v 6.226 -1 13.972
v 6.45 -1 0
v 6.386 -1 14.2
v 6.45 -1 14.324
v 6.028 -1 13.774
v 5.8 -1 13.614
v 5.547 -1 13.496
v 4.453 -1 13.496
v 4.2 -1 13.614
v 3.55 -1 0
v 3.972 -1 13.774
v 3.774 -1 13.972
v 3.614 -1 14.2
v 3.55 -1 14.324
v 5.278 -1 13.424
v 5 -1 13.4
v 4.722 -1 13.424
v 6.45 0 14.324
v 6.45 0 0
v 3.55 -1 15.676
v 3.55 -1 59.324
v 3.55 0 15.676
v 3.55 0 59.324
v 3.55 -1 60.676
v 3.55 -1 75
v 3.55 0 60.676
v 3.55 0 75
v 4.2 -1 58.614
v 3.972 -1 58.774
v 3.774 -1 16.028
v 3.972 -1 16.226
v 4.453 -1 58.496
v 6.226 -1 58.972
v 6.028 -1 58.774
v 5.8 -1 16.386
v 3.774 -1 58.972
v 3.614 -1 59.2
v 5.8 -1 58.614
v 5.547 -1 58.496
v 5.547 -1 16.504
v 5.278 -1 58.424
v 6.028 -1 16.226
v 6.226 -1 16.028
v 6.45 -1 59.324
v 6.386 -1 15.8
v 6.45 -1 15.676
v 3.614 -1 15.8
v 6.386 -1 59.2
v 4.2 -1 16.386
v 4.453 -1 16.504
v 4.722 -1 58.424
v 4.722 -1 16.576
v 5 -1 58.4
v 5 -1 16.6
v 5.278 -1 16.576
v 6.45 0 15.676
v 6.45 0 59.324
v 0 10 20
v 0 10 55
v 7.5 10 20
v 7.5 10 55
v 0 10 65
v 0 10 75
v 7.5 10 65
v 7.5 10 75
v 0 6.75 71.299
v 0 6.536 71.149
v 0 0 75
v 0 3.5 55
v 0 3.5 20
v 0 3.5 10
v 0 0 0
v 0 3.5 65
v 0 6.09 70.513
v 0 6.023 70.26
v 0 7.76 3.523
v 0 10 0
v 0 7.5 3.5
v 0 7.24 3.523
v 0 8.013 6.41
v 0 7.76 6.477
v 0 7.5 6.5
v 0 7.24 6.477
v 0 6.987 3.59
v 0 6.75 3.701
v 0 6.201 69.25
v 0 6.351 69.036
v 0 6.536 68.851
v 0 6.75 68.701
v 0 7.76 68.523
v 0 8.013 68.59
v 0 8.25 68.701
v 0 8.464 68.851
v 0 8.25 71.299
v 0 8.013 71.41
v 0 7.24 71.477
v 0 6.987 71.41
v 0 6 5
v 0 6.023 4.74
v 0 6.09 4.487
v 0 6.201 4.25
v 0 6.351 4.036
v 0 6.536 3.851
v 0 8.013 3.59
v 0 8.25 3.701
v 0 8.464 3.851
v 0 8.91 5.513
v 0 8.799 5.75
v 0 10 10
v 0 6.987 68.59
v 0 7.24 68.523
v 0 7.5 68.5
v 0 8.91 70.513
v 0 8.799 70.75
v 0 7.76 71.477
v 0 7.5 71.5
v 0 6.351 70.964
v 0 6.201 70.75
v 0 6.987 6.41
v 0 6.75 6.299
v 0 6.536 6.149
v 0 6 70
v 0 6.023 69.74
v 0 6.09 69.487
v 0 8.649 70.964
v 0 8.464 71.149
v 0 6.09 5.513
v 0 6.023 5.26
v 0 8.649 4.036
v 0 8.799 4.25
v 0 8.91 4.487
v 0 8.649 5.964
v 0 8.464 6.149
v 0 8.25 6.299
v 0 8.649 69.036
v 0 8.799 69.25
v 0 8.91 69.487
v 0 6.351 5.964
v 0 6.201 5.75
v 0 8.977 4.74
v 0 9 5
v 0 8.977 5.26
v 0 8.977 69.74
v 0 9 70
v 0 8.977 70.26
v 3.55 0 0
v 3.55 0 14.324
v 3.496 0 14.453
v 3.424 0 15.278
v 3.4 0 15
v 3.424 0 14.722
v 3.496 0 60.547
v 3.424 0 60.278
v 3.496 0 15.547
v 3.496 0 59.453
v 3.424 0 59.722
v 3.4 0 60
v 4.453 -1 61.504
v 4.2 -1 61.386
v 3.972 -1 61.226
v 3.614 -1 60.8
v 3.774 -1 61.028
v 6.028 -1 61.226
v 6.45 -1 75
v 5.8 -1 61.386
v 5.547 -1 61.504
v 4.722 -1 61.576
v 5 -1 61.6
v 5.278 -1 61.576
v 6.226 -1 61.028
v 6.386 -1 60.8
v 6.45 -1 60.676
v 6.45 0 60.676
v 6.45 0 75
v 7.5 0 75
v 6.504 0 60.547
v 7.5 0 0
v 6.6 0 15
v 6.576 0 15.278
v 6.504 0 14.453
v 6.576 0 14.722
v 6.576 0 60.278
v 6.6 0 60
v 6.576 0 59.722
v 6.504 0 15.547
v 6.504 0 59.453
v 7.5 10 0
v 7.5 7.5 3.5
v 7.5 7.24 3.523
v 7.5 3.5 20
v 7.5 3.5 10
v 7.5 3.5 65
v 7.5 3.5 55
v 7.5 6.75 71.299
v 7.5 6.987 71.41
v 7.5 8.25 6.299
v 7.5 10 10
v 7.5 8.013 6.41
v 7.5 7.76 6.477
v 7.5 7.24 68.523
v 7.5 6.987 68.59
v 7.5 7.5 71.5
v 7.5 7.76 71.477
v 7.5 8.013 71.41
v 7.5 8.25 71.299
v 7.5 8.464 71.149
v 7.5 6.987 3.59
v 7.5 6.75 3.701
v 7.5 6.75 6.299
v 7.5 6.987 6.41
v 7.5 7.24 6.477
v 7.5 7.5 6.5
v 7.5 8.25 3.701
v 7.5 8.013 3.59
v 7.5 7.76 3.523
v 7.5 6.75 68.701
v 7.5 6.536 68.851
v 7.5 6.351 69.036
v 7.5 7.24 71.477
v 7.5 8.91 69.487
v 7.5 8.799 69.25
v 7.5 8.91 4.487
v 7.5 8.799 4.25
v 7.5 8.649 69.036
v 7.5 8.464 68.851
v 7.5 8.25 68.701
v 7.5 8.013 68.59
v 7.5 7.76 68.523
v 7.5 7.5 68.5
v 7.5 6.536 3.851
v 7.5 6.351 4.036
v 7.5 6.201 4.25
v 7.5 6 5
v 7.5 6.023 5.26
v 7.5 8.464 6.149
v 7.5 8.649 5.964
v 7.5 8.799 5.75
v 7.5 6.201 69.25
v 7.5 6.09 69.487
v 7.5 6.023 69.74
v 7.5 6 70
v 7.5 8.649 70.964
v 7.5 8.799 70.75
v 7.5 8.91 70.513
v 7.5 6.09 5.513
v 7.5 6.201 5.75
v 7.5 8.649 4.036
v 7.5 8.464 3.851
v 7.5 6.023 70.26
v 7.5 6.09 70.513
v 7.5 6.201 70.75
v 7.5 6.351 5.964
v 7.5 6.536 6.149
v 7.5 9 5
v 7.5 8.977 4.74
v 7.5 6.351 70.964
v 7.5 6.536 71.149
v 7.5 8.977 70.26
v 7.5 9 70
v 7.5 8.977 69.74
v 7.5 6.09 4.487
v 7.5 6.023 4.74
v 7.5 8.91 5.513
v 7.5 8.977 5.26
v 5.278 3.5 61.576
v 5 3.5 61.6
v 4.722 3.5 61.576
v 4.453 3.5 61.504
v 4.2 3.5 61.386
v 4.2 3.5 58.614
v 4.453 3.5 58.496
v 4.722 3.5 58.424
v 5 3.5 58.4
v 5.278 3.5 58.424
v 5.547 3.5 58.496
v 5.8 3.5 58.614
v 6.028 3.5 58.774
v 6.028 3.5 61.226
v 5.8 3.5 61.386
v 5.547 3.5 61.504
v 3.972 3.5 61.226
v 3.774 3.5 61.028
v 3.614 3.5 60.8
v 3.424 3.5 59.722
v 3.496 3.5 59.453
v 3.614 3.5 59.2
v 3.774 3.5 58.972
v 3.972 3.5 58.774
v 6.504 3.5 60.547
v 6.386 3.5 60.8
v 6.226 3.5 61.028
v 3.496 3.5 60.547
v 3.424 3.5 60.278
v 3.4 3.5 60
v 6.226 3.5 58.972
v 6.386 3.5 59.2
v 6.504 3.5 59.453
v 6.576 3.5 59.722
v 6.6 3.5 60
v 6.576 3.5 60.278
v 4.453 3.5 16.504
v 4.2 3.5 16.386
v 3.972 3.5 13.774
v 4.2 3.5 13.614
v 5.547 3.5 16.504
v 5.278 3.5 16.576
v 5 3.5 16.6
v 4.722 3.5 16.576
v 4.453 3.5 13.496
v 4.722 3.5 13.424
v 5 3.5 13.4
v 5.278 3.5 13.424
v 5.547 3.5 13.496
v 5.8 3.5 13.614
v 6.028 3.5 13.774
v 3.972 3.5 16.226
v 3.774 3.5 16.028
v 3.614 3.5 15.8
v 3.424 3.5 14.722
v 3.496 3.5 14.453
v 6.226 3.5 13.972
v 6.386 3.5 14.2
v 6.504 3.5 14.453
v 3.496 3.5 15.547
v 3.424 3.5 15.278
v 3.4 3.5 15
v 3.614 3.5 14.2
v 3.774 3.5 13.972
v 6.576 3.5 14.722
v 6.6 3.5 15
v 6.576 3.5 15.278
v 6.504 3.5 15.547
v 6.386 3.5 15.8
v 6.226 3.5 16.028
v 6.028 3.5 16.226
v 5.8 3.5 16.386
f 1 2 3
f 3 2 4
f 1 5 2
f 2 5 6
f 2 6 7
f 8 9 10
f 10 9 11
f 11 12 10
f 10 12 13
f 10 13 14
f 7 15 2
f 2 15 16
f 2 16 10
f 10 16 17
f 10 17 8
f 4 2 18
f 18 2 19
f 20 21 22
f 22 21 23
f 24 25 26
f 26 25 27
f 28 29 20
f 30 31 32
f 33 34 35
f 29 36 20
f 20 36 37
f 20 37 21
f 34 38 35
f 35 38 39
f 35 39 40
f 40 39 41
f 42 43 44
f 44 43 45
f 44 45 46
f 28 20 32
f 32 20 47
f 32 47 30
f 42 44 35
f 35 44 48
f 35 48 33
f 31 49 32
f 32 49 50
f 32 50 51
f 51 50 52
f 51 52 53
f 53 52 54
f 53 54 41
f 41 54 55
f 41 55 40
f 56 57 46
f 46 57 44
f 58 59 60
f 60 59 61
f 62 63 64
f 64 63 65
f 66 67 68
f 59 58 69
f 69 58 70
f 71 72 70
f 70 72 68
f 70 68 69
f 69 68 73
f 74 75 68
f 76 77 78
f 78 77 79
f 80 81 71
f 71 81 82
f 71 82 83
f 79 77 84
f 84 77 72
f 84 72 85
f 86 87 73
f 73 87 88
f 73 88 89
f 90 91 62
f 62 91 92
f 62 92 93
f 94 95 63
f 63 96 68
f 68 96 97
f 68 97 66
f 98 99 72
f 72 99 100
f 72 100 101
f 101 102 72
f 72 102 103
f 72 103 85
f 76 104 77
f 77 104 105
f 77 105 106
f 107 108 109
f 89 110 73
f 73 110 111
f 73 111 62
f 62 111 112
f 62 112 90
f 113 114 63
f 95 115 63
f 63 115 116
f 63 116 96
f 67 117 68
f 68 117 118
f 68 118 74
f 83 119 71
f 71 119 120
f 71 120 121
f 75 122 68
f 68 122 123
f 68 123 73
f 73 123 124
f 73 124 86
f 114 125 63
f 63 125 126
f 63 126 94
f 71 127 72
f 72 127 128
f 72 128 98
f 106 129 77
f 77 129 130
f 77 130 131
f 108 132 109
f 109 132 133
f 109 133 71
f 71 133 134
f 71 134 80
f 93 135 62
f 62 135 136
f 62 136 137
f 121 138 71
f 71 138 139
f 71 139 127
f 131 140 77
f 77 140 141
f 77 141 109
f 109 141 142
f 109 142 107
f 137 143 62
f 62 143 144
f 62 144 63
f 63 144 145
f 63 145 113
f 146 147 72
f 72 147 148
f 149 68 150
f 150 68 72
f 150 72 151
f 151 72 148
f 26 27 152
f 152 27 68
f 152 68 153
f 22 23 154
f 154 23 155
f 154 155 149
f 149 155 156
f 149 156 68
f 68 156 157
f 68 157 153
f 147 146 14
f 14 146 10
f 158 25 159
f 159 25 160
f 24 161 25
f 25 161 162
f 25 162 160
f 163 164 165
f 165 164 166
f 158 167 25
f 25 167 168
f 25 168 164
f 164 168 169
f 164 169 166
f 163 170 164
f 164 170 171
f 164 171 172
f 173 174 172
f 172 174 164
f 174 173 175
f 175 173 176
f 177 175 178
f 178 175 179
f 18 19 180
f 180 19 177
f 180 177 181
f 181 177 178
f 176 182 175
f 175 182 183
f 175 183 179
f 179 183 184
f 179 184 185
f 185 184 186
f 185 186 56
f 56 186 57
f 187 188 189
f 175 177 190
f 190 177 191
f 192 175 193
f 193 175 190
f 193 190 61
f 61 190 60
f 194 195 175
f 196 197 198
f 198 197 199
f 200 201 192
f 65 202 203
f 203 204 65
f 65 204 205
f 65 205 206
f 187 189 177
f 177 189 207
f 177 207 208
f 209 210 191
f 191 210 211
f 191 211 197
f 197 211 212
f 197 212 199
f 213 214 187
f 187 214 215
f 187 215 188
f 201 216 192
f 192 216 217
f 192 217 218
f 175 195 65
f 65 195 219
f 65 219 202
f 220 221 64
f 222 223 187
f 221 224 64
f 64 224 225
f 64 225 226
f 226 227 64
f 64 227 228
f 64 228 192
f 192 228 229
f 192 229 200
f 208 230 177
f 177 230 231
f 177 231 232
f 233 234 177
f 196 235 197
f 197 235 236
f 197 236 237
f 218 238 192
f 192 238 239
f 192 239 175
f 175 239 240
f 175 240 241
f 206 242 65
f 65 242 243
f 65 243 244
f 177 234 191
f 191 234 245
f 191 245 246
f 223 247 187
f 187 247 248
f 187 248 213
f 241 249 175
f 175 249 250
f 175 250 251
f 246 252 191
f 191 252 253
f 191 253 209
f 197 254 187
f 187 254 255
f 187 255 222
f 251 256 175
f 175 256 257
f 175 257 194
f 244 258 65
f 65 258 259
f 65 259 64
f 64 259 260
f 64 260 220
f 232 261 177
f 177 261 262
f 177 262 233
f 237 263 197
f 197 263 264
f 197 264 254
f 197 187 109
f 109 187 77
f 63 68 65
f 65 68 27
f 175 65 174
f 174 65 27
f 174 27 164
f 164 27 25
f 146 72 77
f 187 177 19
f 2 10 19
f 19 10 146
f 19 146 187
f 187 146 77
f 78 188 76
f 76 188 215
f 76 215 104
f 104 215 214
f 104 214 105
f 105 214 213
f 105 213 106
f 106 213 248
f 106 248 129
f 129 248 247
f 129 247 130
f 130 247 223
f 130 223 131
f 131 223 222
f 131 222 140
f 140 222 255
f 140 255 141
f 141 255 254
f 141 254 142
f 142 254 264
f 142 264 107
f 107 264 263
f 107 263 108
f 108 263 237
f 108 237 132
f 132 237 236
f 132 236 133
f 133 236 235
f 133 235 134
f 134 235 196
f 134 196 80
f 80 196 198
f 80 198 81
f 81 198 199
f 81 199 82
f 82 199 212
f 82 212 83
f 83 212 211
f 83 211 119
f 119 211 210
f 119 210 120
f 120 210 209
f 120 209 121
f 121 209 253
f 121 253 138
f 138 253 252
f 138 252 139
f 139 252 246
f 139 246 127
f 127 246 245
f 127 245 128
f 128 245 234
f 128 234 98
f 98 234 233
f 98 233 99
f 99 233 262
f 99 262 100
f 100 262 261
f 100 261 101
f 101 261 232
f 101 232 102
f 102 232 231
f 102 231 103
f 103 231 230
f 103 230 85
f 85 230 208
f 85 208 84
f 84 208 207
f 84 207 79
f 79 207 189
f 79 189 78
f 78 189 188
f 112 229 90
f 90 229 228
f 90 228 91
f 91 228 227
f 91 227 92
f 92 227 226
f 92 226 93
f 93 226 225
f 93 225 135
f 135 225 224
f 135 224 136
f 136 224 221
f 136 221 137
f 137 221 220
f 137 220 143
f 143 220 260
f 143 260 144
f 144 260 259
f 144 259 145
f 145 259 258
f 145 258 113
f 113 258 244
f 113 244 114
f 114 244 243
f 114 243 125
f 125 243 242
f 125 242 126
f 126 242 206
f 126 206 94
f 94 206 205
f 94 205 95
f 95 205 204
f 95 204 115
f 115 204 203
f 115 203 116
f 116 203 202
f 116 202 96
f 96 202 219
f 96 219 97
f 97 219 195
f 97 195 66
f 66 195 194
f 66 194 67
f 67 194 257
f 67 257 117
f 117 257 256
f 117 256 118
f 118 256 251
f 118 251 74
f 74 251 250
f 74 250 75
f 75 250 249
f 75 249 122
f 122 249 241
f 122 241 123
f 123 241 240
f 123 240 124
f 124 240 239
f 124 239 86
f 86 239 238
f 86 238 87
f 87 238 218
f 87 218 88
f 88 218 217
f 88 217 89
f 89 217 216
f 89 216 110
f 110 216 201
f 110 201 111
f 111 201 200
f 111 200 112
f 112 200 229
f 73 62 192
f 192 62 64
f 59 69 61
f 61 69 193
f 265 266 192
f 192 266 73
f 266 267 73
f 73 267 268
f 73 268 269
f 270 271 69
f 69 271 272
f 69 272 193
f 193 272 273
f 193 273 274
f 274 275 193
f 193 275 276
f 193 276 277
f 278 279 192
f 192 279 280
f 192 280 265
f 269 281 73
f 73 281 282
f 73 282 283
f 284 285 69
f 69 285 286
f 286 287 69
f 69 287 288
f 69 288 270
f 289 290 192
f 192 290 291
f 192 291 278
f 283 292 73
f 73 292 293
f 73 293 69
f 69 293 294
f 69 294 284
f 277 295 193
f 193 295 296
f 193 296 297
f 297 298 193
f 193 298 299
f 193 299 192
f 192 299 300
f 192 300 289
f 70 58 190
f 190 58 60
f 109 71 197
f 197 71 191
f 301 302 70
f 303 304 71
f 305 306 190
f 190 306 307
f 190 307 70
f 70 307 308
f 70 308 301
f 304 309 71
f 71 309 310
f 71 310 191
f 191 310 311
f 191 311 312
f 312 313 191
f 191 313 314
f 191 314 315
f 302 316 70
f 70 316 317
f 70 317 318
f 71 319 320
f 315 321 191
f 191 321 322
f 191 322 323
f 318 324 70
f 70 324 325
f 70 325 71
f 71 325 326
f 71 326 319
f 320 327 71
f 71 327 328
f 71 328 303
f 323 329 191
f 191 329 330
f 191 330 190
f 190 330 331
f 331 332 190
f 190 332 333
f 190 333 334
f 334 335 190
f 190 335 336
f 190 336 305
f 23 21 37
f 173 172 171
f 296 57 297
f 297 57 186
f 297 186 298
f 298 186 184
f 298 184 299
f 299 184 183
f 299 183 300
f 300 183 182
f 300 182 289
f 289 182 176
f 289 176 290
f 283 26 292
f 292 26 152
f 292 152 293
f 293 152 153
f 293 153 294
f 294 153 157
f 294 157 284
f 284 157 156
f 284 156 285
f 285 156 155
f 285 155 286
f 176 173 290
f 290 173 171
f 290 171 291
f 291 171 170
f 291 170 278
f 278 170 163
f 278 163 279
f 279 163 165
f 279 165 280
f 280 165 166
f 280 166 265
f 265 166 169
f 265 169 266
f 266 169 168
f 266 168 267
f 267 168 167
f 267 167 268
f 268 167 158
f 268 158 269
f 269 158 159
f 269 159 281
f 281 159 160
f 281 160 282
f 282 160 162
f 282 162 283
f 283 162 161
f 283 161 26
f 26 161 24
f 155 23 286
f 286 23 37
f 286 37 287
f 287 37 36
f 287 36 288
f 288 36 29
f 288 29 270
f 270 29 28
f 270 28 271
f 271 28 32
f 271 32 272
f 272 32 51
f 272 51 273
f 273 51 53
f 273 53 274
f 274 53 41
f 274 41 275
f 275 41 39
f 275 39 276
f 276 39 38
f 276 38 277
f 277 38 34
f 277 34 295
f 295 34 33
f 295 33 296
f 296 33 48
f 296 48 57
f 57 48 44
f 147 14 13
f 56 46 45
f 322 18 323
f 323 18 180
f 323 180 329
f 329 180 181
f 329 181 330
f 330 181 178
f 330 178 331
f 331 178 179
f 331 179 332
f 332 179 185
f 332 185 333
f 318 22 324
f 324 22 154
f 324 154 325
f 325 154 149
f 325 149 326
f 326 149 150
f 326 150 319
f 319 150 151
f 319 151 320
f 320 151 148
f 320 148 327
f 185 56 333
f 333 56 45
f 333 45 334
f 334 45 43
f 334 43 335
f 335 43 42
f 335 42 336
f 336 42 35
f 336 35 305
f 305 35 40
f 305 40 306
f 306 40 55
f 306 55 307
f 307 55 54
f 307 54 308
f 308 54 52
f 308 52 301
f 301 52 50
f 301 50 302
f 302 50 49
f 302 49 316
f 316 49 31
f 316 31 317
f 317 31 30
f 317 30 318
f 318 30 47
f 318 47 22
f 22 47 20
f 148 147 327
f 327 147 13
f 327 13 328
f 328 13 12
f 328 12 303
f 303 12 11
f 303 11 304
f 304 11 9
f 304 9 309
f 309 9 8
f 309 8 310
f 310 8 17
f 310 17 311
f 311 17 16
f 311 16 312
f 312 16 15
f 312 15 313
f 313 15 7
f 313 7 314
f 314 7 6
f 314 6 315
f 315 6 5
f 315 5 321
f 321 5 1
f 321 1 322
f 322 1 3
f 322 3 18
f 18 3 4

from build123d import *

# Parameters (mm, degrees)
MAIN_DEPTH              = 75
ESQUISSE2_R             = 1.5
ENL_V_MAT_EXTRU_1_DEPTH = 8.5
ESQUISSE3_W             = 10
ESQUISSE3_H             = 6.5
ENL_V_MAT_EXTRU_2_DEPTH = 8.5
ESQUISSE4_R             = 1.6
ENL_V_MAT_EXTRU_3_DEPTH = 12


with BuildPart() as part:
    # Esquisse1 → Main (new body)
    with BuildSketch(Plane.XY):
        Polygon((0, 10), (7.5, 10), (7.5, 0), (6.45, 0), (6.45, -1), (3.55, -1), (3.55, 0), (0, 0), align=None)
    extrude(amount=MAIN_DEPTH)

    # Esquisse2 → Enlèv. mat.-Extru.1 (cut, through all)
    with BuildSketch(Plane(origin=(7.5, 0, 0), x_dir=(0, 0, -1), z_dir=(1, 0, 0))):
        with Locations((-5, 7.5)):
            Circle(ESQUISSE2_R)
        with Locations((-70, 7.5)):
            Circle(ESQUISSE2_R)
    extrude(amount=-ENL_V_MAT_EXTRU_1_DEPTH, mode=Mode.SUBTRACT)

    # Esquisse3 → Enlèv. mat.-Extru.2 (cut, through all)
    with BuildSketch(Plane(origin=(7.5, 0, 0), x_dir=(0, 0, -1), z_dir=(1, 0, 0))):
        with Locations((-60, 6.75)):
            Rectangle(ESQUISSE3_W, ESQUISSE3_H)
        with Locations((-15, 6.75)):
            Rectangle(ESQUISSE3_W, ESQUISSE3_H)
    extrude(amount=-ENL_V_MAT_EXTRU_2_DEPTH, mode=Mode.SUBTRACT)

    # Esquisse4 → Enlèv. mat.-Extru.3 (cut, through all)
    with BuildSketch(Plane(origin=(0, -1, 0), x_dir=(-1, 0, 0), z_dir=(0, -1, 0))):
        with Locations((-5, -60)):
            Circle(ESQUISSE4_R)
        with Locations((-5, -15)):
            Circle(ESQUISSE4_R)
    extrude(amount=-ENL_V_MAT_EXTRU_3_DEPTH, mode=Mode.SUBTRACT)


solid = part.part
